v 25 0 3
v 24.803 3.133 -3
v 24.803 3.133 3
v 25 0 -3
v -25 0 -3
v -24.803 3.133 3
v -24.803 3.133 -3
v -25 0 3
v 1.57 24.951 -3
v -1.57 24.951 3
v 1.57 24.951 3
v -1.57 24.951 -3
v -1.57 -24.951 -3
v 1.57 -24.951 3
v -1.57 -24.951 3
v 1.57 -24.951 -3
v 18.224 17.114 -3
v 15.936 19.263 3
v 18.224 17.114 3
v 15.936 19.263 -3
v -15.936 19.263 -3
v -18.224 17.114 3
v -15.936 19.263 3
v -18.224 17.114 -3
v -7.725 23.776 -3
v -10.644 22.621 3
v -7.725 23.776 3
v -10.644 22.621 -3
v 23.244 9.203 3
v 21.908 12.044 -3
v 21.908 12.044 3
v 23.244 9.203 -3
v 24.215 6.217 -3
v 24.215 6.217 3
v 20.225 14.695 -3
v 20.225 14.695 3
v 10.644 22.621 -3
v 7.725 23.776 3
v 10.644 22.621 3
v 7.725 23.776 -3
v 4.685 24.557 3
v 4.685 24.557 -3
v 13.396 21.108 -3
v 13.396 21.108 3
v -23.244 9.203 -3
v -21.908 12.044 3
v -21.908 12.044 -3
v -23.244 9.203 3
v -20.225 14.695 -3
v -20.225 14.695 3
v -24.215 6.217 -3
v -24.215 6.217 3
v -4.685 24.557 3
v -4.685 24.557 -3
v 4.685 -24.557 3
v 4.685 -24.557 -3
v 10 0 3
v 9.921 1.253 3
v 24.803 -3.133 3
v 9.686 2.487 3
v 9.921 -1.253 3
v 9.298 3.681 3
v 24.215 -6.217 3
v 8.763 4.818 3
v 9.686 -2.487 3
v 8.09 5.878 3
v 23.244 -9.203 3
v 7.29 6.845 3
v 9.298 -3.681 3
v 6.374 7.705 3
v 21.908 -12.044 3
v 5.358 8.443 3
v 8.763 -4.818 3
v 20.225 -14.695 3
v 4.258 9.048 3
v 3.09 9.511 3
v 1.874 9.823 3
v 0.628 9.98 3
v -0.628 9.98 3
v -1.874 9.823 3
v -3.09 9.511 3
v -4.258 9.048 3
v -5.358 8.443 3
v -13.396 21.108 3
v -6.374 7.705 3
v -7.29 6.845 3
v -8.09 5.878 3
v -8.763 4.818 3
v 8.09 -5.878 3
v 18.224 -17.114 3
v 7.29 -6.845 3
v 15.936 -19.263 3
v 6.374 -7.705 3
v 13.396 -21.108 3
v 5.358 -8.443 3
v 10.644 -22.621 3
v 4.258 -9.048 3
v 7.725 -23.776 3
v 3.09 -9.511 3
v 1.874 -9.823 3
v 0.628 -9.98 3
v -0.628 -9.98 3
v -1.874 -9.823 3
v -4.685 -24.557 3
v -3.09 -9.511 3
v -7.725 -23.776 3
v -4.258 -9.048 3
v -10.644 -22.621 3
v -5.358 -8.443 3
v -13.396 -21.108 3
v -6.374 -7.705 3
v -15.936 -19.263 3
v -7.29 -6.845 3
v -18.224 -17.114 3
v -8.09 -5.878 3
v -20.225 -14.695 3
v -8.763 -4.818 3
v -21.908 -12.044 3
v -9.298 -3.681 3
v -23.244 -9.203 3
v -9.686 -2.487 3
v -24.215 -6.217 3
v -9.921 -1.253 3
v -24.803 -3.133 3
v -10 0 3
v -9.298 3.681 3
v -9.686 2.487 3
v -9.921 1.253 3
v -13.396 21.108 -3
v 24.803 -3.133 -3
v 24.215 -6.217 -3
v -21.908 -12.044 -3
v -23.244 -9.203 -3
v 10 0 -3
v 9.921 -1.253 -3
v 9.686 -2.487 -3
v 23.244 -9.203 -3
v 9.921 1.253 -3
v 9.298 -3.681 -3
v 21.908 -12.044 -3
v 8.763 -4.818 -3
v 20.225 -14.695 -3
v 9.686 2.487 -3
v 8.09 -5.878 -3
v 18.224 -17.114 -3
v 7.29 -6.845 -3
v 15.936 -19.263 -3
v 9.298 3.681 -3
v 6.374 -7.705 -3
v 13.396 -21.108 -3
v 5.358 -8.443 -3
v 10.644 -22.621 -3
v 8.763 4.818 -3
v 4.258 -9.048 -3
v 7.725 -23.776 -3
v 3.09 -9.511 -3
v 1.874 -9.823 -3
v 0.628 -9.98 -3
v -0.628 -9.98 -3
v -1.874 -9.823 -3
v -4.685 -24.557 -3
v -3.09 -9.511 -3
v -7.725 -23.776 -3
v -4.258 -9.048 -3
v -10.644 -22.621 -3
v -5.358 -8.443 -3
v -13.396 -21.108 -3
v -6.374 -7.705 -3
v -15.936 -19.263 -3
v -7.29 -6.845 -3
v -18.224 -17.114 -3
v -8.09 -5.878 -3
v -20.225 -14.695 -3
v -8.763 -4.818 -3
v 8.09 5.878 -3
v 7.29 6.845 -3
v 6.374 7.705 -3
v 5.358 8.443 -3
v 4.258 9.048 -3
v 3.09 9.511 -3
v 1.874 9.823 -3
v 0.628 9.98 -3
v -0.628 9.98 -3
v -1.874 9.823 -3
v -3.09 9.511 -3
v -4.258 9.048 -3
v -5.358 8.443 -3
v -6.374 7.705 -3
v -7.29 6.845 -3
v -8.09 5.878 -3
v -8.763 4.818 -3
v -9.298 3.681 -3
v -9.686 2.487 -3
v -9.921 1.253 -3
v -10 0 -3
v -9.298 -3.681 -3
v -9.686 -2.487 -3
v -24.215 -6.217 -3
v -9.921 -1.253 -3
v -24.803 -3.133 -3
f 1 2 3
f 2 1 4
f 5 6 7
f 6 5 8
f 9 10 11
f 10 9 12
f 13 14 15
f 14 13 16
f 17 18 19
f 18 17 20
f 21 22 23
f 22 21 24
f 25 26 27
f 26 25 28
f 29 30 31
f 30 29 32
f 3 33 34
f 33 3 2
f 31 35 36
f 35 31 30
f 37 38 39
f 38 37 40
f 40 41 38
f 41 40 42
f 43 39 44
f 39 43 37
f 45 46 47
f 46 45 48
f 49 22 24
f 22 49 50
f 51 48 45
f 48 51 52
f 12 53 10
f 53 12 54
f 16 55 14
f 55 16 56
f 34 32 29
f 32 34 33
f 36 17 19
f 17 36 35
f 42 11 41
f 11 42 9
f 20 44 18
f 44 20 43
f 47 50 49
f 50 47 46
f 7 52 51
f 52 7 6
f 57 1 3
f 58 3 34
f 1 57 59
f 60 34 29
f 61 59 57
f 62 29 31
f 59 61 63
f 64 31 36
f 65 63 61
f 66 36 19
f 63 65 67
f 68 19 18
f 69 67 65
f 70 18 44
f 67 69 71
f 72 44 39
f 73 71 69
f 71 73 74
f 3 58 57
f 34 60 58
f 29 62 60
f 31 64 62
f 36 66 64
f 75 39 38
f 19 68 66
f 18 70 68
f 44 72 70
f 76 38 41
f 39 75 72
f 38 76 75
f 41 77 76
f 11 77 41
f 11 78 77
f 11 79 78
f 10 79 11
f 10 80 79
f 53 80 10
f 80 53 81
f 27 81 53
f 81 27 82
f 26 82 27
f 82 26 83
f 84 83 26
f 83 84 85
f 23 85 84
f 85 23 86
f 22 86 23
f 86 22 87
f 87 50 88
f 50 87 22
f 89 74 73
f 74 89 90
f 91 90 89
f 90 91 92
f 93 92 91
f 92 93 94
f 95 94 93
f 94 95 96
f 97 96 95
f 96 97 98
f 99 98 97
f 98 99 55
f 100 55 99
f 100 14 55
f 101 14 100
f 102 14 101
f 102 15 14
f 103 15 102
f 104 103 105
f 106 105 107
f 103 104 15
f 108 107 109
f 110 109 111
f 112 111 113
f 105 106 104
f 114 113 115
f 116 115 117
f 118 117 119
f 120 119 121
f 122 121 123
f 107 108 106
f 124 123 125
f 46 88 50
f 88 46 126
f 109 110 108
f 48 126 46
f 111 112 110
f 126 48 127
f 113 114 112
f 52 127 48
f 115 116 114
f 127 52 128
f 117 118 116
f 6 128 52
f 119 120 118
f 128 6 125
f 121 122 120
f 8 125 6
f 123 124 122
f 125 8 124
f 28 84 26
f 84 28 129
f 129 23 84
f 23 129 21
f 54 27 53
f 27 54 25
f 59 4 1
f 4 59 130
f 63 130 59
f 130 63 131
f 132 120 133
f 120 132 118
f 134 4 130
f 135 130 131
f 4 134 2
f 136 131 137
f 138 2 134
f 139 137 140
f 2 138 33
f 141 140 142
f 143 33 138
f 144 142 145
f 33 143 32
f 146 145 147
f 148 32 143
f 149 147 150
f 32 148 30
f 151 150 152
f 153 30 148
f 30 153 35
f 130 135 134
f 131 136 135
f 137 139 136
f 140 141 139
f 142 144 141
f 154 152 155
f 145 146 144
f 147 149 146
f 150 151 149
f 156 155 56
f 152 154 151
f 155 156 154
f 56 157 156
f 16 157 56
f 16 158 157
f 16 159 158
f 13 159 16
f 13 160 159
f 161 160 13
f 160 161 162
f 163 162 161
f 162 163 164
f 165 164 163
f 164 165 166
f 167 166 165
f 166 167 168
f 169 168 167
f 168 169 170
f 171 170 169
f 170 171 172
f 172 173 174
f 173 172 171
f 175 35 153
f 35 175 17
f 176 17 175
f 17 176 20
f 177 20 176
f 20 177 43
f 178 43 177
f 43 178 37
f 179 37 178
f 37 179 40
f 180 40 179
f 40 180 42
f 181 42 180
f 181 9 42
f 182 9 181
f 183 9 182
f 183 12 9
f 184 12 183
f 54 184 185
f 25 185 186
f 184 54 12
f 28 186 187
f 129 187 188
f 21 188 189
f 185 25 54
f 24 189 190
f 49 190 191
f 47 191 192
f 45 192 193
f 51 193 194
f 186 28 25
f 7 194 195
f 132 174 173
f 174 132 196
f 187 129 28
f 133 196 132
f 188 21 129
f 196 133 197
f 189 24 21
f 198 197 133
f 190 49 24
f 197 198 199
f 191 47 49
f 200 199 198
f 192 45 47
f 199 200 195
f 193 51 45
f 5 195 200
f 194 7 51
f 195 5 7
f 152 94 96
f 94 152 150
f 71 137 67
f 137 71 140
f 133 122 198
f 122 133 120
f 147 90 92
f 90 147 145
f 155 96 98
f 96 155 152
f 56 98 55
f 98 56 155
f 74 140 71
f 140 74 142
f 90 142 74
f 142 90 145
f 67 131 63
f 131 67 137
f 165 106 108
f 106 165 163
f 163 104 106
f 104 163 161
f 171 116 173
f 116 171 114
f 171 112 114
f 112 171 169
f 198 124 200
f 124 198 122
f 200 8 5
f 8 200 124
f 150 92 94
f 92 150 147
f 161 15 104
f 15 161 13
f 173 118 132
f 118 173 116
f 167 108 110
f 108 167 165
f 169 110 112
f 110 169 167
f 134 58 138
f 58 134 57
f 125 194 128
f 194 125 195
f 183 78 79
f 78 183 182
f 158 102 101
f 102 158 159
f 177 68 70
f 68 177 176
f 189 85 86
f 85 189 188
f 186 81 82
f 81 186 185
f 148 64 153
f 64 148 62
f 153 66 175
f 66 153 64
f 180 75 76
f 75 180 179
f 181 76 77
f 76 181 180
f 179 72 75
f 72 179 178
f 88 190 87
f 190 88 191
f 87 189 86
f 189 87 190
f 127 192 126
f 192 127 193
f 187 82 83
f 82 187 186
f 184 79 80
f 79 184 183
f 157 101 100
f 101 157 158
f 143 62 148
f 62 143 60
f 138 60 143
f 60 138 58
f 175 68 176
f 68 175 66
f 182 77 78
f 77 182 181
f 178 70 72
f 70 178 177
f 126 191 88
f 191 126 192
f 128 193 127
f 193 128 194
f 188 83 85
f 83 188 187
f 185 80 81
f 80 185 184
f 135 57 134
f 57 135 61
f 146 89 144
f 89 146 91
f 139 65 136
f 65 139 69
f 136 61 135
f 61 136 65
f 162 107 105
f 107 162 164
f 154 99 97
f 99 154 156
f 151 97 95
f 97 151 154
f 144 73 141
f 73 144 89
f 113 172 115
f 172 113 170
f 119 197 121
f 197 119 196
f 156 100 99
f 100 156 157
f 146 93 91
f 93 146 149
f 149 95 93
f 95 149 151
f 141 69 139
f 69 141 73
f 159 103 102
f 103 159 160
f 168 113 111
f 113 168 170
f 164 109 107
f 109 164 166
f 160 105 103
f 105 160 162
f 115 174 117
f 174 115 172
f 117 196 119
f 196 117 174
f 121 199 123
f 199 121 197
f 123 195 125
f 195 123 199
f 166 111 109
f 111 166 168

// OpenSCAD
$fn = 50;


difference() {
	union() {
		translate(v = [0, 0, -3.0000000000]) {
			cylinder(h = 6, r = 25.0000000000);
		}
	}
	union() {
		translate(v = [0, 0, -100.0000000000]) {
			cylinder(h = 200, r = 10);
		}
	}
}
